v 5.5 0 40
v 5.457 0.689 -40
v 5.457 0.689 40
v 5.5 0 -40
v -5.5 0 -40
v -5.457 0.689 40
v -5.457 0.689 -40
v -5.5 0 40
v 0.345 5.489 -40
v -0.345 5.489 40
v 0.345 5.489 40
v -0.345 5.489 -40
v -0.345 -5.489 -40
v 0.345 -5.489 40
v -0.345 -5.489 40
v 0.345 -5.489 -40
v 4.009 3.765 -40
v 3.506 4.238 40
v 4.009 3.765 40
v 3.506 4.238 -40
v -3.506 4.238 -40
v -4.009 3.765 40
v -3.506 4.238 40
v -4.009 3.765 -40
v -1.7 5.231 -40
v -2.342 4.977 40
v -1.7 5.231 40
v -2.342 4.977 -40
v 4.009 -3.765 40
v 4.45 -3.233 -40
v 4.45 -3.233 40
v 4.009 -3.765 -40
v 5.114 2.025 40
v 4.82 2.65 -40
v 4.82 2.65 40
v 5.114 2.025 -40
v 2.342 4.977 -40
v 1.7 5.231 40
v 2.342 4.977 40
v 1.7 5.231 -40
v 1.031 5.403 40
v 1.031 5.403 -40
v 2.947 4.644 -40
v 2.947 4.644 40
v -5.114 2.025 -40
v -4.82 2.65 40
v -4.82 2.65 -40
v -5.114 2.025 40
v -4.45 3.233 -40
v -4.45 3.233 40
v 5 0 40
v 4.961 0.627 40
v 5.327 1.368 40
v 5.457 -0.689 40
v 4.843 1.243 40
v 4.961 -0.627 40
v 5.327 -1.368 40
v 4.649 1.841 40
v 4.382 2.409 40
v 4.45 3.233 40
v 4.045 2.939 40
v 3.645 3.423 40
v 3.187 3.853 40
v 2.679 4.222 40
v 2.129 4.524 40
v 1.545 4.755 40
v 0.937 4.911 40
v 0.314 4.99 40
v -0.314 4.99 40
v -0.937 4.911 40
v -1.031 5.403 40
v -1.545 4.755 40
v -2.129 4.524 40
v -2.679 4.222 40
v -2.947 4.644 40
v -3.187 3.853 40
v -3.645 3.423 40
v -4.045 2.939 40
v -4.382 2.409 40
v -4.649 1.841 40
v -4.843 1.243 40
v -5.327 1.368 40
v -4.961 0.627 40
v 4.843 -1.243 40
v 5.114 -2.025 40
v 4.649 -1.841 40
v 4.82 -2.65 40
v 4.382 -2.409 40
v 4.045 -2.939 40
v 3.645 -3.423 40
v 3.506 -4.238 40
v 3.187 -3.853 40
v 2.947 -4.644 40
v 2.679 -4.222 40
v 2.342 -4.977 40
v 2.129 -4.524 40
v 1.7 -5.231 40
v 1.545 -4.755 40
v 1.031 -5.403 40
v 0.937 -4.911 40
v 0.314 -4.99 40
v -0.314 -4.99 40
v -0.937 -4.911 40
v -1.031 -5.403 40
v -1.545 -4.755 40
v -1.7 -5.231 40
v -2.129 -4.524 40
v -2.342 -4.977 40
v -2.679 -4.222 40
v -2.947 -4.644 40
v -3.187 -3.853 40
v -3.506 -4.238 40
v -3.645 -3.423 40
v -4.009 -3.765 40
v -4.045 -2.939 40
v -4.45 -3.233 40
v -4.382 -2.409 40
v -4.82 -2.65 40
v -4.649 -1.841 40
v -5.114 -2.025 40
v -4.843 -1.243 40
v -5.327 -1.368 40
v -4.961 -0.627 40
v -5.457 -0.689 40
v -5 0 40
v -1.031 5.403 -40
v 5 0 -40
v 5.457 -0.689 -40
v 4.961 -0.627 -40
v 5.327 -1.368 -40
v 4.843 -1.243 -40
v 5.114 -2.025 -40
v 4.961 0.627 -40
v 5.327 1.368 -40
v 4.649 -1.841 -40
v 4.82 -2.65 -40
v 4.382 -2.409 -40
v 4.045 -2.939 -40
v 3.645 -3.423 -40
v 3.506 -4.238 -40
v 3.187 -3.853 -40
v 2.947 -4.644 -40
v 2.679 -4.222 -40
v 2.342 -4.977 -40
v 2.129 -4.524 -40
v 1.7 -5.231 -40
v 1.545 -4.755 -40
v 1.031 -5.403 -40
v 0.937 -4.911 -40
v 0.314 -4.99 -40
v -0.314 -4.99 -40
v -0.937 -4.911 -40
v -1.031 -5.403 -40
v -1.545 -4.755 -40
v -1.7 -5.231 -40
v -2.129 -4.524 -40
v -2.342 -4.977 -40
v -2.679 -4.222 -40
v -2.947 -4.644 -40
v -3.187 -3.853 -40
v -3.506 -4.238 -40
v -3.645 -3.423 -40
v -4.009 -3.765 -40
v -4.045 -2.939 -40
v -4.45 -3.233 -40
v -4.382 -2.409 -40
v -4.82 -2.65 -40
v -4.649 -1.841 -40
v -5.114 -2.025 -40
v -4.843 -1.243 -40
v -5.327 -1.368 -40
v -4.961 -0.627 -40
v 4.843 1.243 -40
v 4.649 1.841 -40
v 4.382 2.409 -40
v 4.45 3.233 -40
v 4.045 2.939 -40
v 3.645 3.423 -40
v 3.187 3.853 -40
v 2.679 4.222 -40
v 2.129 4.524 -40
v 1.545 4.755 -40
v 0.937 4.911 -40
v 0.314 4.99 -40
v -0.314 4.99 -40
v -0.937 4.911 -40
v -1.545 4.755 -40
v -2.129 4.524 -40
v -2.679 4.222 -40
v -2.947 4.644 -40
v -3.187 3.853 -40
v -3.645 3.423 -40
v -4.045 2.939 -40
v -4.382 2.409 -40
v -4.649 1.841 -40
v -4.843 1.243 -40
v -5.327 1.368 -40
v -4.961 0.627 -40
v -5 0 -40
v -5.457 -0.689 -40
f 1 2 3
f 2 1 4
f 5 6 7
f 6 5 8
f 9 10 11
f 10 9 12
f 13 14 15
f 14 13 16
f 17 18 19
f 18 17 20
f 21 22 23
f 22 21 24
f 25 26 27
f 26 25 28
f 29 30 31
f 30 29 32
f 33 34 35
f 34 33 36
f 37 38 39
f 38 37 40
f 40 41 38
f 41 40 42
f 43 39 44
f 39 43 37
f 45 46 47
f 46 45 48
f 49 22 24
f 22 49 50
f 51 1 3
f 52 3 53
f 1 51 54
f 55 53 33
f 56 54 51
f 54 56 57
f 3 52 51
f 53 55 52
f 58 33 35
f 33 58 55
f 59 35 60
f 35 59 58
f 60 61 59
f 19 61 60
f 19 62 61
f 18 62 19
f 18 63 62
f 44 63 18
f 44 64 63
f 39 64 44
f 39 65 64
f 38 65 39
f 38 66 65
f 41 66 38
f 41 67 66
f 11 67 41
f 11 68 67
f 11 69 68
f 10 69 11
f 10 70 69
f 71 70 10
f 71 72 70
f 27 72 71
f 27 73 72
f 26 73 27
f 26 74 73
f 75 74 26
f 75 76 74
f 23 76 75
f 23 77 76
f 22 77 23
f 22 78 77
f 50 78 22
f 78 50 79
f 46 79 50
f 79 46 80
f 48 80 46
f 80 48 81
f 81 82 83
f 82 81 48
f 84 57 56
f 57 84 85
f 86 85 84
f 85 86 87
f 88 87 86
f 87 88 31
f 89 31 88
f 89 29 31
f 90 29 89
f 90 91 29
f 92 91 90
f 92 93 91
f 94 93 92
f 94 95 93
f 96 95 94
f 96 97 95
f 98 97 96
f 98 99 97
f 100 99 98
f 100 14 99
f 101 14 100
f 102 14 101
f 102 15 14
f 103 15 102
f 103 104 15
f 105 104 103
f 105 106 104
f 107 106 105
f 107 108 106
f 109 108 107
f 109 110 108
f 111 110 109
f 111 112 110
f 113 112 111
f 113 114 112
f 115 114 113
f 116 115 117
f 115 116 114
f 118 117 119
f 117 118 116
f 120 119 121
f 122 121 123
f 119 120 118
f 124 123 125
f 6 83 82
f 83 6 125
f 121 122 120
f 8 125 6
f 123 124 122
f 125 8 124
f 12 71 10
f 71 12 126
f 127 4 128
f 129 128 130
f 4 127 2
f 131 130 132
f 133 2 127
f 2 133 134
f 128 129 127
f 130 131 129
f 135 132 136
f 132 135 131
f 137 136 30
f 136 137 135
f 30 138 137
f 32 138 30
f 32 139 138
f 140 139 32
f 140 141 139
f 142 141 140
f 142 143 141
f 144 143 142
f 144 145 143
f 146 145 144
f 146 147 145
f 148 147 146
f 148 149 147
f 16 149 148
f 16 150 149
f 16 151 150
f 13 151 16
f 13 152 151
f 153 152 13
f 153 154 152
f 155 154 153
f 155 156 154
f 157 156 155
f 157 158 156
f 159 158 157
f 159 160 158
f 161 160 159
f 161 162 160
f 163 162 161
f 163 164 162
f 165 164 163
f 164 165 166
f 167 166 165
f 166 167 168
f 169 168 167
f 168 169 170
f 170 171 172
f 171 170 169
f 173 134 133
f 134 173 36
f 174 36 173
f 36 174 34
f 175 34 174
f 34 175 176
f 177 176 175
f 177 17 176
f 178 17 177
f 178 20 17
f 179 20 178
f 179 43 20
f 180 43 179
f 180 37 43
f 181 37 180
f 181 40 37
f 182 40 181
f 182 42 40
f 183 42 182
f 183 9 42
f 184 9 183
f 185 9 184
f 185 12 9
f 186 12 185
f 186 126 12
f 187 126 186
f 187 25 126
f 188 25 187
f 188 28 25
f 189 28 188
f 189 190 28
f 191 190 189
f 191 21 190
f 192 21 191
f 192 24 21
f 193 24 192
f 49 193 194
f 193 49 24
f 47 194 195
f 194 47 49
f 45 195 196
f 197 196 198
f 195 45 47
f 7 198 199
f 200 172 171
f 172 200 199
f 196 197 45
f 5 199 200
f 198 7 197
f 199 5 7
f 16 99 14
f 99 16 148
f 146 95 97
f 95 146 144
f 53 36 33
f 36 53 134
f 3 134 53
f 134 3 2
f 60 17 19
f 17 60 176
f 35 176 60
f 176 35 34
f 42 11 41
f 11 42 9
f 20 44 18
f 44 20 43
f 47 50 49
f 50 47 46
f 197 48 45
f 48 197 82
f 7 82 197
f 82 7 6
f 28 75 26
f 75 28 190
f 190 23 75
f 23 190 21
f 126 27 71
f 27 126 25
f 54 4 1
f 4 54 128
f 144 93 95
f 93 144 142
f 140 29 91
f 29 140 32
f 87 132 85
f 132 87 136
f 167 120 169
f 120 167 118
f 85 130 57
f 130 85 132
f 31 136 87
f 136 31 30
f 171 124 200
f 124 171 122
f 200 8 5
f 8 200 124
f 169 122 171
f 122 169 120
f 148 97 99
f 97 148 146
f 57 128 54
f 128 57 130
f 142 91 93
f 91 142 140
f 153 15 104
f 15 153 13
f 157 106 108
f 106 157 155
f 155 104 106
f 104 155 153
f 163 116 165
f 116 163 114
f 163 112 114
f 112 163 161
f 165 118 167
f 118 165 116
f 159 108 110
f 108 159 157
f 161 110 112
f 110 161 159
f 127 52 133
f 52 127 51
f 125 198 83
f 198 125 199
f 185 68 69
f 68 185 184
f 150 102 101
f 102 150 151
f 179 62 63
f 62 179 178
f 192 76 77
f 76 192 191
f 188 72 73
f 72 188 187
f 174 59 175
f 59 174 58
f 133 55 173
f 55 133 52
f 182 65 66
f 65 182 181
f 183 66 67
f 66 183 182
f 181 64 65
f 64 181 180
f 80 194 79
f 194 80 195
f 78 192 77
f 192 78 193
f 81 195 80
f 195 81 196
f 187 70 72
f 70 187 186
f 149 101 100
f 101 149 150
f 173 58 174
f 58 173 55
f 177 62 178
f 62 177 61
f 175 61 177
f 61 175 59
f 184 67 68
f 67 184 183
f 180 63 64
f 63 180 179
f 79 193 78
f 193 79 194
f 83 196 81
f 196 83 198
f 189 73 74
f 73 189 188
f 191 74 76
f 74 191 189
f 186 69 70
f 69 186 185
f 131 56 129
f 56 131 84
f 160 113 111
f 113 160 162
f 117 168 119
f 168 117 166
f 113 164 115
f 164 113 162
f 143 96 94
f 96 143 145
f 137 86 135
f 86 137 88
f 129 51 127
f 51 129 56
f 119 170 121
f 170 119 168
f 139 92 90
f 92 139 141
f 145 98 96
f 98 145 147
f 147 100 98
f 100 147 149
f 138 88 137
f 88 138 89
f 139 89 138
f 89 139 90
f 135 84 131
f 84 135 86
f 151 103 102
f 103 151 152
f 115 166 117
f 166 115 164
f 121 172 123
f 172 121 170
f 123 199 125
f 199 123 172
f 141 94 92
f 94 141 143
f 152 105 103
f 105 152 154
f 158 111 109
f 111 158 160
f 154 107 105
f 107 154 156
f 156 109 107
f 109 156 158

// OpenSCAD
$fn = 50;


difference() {
	union() {
		translate(v = [0, 0, -40.0000000000]) {
			cylinder(h = 80, r = 5.5000000000);
		}
	}
	union() {
		translate(v = [0, 0, -100.0000000000]) {
			cylinder(h = 200, r = 5);
		}
	}
}
